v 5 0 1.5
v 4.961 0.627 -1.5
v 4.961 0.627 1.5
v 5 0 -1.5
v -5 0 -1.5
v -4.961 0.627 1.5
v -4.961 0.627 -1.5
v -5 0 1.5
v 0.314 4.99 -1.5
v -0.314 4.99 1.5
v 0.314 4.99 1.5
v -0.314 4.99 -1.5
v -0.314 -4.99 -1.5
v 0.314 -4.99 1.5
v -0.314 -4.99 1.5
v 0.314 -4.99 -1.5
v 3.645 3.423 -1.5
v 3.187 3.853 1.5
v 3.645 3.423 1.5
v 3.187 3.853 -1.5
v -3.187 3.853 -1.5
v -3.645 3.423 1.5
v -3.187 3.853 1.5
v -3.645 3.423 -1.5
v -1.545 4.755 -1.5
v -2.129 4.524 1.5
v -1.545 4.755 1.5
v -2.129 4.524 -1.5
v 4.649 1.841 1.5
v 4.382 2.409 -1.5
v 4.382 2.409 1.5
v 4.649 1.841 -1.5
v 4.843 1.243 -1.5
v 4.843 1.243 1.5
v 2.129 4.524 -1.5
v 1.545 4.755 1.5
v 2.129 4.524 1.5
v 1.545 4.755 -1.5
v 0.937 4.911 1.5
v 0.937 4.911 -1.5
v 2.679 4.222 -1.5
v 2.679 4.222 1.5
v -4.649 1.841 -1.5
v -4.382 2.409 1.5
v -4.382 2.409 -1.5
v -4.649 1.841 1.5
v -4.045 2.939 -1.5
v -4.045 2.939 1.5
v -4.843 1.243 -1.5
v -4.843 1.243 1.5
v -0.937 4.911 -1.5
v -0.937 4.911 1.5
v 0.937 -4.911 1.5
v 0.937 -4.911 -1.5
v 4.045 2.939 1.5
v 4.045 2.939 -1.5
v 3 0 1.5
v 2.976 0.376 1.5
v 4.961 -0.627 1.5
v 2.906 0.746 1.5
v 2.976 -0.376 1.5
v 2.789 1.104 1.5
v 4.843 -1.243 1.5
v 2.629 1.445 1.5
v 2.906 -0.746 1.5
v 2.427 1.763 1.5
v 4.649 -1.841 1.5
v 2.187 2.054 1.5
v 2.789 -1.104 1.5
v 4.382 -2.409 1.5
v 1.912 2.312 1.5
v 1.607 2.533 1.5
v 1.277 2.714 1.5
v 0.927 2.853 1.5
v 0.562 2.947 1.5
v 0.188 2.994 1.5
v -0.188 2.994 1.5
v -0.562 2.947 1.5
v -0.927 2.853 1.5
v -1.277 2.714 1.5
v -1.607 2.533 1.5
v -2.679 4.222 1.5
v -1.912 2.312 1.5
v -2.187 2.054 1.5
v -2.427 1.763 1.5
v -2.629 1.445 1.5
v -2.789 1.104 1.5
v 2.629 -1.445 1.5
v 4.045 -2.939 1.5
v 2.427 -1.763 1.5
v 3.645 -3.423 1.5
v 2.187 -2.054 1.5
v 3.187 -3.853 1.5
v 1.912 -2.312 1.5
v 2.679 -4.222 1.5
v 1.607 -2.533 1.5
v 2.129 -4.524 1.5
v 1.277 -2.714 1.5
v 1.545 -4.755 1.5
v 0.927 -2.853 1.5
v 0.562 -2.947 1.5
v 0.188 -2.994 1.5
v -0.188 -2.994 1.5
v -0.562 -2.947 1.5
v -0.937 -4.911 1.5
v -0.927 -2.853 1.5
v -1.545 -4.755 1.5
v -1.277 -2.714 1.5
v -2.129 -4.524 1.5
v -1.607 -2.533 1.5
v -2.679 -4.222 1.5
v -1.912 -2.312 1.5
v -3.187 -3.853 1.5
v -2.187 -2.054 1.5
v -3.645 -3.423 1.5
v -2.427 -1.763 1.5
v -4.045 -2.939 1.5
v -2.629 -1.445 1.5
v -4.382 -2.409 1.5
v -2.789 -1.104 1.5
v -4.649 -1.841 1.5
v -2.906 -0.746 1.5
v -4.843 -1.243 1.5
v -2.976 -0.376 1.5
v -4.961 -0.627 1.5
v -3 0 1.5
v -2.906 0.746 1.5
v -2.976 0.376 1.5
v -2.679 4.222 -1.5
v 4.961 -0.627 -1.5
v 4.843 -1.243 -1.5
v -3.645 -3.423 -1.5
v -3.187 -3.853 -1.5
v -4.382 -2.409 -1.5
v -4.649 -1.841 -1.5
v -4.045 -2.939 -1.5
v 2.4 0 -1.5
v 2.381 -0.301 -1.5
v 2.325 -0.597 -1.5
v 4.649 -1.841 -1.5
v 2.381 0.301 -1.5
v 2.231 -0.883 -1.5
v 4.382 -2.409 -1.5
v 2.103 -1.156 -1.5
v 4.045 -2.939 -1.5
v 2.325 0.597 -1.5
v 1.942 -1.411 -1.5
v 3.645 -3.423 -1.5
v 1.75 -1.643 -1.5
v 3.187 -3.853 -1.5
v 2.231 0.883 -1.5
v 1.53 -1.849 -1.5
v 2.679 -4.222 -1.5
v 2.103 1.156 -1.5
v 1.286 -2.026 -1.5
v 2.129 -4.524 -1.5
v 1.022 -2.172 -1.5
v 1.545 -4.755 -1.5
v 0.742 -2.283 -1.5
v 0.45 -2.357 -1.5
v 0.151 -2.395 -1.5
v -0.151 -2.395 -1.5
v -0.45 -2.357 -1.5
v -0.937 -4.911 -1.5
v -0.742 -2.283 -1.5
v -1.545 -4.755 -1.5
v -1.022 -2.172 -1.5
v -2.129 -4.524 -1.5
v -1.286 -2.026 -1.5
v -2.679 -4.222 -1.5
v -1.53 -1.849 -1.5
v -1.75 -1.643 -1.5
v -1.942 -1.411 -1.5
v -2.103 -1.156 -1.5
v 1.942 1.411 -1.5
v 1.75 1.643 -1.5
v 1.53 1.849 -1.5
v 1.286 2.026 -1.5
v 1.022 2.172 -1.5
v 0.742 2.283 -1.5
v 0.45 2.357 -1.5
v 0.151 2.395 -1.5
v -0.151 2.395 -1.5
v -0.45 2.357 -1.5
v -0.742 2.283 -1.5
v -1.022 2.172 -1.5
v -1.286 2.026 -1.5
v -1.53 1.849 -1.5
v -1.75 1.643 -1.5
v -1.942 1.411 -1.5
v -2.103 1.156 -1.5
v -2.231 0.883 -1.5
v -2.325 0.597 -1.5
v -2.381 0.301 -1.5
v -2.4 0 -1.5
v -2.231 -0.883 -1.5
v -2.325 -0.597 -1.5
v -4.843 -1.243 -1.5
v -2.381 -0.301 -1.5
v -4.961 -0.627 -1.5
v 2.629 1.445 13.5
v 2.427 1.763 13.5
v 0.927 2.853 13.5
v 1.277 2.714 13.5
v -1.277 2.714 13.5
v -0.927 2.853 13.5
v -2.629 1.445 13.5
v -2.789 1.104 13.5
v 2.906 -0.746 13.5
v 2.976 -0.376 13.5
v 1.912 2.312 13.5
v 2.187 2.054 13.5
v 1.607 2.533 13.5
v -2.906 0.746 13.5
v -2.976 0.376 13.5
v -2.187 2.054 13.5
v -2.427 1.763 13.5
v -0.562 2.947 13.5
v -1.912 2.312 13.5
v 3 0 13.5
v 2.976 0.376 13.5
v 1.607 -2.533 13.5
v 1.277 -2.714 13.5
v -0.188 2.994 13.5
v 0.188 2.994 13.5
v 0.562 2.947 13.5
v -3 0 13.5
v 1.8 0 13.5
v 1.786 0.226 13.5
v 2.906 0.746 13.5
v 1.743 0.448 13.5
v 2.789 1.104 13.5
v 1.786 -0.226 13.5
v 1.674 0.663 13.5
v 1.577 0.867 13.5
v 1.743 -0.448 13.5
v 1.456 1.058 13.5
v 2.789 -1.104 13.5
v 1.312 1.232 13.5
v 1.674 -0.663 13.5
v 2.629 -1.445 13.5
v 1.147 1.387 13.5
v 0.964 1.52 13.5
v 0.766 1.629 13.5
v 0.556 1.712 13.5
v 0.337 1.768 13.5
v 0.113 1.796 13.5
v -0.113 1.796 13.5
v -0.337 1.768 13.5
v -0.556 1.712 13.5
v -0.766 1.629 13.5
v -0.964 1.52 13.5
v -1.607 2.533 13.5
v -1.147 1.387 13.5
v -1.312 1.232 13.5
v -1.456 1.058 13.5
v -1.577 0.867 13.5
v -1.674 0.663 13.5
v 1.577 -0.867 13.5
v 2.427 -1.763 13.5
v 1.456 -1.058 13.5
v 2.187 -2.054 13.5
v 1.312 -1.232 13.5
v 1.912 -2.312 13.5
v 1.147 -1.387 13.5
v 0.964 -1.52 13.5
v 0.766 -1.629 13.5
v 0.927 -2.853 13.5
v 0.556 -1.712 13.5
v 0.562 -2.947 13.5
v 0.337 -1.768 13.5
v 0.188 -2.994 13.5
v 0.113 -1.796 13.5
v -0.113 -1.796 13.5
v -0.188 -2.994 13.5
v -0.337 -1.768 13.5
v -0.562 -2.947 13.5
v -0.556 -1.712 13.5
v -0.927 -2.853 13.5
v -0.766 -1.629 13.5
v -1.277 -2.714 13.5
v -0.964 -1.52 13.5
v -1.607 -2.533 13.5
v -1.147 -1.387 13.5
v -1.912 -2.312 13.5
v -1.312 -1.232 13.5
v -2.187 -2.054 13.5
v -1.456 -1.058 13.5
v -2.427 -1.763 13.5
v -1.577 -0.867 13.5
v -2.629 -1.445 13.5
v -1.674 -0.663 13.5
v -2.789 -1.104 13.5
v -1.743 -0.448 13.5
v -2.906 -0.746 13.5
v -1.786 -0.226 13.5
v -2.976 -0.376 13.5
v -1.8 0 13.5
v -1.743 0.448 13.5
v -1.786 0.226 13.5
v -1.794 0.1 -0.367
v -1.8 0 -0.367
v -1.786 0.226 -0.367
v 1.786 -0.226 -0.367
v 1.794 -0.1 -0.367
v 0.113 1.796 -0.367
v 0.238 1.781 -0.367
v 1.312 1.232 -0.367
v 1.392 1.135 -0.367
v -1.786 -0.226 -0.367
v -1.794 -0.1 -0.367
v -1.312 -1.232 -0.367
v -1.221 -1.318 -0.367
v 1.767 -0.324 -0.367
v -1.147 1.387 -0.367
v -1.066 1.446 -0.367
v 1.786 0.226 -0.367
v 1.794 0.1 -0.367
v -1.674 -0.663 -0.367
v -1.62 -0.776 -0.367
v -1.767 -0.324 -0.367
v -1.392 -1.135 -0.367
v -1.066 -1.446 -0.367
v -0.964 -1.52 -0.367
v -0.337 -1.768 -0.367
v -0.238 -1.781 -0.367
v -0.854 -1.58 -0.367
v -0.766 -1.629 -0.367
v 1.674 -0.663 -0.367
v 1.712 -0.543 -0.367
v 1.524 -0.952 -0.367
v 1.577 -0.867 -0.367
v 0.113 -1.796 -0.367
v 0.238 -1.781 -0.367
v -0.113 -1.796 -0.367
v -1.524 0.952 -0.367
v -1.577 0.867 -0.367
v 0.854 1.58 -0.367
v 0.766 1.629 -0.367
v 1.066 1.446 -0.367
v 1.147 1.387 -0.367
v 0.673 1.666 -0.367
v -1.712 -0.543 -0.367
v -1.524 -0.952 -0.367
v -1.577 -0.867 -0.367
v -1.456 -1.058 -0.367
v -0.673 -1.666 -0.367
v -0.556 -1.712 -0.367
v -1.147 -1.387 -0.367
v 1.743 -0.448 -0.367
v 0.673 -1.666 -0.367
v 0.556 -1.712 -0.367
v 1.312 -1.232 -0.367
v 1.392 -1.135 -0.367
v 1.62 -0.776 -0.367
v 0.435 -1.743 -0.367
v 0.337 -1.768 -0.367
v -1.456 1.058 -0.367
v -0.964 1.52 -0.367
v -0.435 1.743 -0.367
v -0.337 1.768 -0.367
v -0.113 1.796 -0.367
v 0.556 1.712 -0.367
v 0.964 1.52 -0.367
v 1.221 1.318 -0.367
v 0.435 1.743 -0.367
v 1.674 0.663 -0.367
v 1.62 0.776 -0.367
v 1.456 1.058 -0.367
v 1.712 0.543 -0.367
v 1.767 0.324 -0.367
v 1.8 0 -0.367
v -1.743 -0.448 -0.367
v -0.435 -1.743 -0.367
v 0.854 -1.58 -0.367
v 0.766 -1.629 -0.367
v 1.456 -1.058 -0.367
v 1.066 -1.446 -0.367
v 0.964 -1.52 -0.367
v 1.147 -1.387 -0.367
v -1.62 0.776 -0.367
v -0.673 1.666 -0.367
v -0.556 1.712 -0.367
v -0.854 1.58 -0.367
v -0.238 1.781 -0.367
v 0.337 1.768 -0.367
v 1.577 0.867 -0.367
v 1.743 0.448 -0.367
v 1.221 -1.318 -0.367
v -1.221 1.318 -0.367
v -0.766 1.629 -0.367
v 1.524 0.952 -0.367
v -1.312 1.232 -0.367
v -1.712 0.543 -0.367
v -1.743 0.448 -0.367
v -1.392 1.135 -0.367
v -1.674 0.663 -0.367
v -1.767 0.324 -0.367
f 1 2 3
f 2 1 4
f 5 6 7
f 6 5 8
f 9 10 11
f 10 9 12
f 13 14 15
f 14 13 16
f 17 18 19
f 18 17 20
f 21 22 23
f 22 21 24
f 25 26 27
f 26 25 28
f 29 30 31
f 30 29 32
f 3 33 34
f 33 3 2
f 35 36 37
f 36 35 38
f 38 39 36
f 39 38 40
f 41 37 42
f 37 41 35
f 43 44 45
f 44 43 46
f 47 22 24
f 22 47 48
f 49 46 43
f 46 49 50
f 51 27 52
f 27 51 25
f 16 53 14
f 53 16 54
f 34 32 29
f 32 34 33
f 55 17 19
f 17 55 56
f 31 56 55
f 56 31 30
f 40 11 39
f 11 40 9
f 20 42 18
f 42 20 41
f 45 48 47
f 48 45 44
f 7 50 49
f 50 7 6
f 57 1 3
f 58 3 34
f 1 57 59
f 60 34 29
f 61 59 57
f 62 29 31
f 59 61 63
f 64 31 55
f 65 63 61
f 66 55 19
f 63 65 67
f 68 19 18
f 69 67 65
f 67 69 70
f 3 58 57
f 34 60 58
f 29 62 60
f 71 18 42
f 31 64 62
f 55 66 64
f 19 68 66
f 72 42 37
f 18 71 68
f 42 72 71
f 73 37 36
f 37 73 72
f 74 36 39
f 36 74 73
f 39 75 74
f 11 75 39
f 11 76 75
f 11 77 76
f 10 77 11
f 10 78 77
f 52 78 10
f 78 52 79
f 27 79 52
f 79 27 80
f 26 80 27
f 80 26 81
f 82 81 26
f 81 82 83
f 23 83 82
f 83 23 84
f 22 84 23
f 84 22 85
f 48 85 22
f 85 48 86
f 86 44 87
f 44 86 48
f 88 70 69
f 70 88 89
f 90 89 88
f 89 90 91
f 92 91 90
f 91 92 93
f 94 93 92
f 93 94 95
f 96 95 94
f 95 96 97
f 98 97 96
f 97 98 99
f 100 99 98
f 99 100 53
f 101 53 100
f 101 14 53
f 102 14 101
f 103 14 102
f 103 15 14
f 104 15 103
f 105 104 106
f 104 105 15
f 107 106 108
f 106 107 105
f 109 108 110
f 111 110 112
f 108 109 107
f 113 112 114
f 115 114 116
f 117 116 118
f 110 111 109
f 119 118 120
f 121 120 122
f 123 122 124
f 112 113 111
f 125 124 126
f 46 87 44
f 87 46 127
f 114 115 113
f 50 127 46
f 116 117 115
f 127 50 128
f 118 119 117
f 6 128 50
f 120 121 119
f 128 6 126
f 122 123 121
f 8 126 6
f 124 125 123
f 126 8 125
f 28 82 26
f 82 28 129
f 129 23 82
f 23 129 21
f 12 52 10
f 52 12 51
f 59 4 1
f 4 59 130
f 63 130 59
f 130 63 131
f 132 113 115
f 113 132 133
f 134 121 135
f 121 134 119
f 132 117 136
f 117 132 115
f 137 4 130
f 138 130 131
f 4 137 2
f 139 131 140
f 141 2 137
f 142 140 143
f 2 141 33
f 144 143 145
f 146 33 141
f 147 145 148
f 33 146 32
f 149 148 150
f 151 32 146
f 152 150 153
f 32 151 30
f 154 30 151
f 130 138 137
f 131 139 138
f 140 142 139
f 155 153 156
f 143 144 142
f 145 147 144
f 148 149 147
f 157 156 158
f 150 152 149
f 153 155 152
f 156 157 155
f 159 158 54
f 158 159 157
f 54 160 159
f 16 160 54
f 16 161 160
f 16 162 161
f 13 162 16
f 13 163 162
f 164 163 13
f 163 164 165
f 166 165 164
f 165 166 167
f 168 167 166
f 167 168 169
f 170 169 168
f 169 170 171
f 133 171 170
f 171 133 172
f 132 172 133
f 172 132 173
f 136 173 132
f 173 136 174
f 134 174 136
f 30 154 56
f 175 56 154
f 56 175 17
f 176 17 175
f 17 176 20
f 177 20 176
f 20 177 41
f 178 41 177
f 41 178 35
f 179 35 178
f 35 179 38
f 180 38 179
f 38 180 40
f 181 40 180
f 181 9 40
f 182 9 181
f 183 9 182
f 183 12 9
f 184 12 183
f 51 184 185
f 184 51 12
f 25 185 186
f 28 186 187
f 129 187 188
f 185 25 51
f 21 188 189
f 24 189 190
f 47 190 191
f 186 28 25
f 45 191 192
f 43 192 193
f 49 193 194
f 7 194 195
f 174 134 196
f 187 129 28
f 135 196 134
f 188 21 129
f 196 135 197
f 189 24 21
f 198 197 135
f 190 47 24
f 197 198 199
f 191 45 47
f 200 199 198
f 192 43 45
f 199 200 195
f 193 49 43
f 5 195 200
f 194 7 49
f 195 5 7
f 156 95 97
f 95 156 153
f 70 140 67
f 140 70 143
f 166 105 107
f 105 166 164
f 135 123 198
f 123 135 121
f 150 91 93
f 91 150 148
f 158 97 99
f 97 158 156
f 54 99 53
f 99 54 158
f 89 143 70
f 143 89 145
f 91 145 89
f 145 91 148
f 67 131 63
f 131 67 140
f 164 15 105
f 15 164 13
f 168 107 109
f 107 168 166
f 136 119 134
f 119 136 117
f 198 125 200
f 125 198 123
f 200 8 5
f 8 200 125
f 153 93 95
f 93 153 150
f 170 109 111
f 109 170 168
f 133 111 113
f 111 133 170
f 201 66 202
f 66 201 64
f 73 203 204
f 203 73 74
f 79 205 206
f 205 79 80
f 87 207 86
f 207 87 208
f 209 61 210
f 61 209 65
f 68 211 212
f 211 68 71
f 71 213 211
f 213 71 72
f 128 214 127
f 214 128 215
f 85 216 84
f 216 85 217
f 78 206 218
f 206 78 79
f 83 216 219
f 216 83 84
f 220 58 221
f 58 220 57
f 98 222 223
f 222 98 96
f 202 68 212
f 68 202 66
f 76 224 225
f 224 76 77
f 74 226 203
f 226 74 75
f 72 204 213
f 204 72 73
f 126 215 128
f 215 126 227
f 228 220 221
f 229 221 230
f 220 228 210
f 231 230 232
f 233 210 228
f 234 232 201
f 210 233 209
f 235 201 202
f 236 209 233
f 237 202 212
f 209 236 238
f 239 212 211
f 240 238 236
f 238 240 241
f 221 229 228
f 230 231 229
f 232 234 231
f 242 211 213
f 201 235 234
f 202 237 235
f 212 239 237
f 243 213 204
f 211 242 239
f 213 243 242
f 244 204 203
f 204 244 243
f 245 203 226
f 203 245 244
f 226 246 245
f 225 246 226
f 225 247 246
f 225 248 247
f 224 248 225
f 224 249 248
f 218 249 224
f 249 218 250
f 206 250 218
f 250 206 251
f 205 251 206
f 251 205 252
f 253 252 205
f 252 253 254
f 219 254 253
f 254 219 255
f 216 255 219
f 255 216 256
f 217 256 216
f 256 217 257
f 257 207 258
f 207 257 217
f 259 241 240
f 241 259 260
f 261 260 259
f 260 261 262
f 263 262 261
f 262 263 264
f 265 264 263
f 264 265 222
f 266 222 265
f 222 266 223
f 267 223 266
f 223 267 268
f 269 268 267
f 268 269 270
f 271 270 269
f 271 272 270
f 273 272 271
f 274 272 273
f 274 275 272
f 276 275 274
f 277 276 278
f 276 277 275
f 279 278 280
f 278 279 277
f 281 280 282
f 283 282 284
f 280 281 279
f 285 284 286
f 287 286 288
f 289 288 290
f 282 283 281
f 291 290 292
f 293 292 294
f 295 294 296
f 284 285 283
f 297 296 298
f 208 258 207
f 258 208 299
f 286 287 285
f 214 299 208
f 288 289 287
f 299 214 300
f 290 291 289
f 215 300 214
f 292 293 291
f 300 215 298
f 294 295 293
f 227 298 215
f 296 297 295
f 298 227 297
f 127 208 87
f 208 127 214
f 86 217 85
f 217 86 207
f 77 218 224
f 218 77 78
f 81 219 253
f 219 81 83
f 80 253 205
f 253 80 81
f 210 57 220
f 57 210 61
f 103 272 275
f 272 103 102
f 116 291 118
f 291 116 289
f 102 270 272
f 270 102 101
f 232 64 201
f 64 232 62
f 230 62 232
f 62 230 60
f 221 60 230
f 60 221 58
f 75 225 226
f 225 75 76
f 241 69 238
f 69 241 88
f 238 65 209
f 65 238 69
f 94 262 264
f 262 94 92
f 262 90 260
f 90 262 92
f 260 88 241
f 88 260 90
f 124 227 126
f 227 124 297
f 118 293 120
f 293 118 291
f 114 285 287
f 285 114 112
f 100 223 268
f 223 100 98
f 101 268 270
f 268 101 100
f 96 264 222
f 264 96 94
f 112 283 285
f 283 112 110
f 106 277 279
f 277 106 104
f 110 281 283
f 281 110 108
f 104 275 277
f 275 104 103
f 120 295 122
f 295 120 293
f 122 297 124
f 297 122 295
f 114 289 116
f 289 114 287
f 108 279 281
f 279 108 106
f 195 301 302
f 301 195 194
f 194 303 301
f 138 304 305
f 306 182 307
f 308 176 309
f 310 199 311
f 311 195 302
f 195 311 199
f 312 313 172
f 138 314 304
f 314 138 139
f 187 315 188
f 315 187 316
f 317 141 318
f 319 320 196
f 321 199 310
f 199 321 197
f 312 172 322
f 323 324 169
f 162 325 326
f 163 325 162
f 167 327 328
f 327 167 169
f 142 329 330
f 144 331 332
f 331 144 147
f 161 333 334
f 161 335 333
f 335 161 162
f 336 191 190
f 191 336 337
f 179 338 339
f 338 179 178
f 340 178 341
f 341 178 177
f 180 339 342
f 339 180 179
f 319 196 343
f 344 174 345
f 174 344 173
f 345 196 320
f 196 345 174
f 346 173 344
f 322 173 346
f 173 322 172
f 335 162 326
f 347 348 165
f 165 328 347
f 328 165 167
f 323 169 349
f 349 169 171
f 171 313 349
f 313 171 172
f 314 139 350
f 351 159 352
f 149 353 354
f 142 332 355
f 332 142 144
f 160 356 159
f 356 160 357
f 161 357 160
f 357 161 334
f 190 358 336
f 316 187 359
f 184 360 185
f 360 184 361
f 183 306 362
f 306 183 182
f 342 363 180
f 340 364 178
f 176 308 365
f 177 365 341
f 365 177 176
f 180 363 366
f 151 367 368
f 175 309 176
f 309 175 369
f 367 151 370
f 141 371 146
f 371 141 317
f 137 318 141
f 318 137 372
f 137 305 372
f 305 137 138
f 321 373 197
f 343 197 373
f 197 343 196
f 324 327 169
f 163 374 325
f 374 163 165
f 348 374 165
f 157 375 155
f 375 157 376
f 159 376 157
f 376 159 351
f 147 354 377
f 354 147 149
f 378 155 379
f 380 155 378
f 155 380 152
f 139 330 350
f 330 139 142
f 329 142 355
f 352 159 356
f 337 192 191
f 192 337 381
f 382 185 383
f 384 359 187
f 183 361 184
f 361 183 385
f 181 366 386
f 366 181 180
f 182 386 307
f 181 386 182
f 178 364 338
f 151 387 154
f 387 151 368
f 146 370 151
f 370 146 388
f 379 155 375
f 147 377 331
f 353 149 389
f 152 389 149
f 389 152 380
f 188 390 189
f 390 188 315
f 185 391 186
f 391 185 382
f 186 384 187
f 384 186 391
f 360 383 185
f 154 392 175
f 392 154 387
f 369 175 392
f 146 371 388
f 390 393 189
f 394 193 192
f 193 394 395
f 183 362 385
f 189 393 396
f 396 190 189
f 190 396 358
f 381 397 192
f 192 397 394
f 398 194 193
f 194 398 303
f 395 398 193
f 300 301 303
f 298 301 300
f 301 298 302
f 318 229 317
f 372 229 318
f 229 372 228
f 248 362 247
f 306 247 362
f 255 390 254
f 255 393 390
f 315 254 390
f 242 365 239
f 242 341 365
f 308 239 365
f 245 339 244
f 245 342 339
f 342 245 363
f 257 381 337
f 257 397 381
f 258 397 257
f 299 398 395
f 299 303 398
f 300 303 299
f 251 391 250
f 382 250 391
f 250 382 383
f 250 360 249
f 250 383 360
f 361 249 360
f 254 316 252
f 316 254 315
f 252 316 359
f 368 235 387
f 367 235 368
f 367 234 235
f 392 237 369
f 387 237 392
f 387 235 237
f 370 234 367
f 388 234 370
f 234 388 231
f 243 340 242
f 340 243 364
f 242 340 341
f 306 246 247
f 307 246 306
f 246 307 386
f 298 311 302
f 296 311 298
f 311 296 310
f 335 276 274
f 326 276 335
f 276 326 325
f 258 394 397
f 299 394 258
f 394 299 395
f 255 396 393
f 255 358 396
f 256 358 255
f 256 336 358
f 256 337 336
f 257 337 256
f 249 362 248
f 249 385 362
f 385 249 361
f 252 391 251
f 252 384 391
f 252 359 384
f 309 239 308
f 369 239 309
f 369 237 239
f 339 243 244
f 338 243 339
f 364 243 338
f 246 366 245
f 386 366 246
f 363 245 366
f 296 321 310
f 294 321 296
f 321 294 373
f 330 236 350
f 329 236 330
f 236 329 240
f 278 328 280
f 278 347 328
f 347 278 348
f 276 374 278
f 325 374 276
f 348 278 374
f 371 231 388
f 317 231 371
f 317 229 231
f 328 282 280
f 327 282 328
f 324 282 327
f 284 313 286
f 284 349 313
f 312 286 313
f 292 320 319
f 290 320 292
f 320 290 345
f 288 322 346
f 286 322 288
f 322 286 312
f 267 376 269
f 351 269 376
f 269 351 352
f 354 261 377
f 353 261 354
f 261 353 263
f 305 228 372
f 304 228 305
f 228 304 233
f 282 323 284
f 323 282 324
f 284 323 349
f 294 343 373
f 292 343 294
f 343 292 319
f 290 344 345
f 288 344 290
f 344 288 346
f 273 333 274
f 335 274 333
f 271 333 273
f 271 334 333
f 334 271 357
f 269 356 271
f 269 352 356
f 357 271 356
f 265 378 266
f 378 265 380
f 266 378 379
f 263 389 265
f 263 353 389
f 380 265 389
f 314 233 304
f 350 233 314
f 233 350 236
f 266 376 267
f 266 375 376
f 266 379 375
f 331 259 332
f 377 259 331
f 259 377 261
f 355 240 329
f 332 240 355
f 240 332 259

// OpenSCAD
$fn = 50;


difference() {
	union() {
		translate(v = [0, 0, -1.5000000000]) {
			cylinder(h = 3, r = 5.0000000000);
		}
		translate(v = [0, 0, -1.5000000000]) {
			cylinder(h = 15, r = 3.0000000000);
		}
	}
	union() {
		translate(v = [0, 0, -1.5000000000]) {
			rotate(a = [0, 180, 0]) {
				difference() {
					union() {
						translate(v = [0, 0, -1.7000000000]) {
							cylinder(h = 1.7000000000, r1 = 1.5000000000, r2 = 2.4000000000);
						}
						translate(v = [0, 0, -15.0000000000]) {
							cylinder(h = 15, r = 1.5000000000);
						}
						translate(v = [0, 0, -15.0000000000]) {
							cylinder(h = 15, r = 1.8000000000);
						}
						translate(v = [0, 0, -15.0000000000]) {
							cylinder(h = 15, r = 1.5000000000);
						}
					}
					union();
				}
			}
		}
		translate(v = [0, 0, -100.0000000000]) {
			cylinder(h = 200, r = 1.5000000000);
		}
	}
}
